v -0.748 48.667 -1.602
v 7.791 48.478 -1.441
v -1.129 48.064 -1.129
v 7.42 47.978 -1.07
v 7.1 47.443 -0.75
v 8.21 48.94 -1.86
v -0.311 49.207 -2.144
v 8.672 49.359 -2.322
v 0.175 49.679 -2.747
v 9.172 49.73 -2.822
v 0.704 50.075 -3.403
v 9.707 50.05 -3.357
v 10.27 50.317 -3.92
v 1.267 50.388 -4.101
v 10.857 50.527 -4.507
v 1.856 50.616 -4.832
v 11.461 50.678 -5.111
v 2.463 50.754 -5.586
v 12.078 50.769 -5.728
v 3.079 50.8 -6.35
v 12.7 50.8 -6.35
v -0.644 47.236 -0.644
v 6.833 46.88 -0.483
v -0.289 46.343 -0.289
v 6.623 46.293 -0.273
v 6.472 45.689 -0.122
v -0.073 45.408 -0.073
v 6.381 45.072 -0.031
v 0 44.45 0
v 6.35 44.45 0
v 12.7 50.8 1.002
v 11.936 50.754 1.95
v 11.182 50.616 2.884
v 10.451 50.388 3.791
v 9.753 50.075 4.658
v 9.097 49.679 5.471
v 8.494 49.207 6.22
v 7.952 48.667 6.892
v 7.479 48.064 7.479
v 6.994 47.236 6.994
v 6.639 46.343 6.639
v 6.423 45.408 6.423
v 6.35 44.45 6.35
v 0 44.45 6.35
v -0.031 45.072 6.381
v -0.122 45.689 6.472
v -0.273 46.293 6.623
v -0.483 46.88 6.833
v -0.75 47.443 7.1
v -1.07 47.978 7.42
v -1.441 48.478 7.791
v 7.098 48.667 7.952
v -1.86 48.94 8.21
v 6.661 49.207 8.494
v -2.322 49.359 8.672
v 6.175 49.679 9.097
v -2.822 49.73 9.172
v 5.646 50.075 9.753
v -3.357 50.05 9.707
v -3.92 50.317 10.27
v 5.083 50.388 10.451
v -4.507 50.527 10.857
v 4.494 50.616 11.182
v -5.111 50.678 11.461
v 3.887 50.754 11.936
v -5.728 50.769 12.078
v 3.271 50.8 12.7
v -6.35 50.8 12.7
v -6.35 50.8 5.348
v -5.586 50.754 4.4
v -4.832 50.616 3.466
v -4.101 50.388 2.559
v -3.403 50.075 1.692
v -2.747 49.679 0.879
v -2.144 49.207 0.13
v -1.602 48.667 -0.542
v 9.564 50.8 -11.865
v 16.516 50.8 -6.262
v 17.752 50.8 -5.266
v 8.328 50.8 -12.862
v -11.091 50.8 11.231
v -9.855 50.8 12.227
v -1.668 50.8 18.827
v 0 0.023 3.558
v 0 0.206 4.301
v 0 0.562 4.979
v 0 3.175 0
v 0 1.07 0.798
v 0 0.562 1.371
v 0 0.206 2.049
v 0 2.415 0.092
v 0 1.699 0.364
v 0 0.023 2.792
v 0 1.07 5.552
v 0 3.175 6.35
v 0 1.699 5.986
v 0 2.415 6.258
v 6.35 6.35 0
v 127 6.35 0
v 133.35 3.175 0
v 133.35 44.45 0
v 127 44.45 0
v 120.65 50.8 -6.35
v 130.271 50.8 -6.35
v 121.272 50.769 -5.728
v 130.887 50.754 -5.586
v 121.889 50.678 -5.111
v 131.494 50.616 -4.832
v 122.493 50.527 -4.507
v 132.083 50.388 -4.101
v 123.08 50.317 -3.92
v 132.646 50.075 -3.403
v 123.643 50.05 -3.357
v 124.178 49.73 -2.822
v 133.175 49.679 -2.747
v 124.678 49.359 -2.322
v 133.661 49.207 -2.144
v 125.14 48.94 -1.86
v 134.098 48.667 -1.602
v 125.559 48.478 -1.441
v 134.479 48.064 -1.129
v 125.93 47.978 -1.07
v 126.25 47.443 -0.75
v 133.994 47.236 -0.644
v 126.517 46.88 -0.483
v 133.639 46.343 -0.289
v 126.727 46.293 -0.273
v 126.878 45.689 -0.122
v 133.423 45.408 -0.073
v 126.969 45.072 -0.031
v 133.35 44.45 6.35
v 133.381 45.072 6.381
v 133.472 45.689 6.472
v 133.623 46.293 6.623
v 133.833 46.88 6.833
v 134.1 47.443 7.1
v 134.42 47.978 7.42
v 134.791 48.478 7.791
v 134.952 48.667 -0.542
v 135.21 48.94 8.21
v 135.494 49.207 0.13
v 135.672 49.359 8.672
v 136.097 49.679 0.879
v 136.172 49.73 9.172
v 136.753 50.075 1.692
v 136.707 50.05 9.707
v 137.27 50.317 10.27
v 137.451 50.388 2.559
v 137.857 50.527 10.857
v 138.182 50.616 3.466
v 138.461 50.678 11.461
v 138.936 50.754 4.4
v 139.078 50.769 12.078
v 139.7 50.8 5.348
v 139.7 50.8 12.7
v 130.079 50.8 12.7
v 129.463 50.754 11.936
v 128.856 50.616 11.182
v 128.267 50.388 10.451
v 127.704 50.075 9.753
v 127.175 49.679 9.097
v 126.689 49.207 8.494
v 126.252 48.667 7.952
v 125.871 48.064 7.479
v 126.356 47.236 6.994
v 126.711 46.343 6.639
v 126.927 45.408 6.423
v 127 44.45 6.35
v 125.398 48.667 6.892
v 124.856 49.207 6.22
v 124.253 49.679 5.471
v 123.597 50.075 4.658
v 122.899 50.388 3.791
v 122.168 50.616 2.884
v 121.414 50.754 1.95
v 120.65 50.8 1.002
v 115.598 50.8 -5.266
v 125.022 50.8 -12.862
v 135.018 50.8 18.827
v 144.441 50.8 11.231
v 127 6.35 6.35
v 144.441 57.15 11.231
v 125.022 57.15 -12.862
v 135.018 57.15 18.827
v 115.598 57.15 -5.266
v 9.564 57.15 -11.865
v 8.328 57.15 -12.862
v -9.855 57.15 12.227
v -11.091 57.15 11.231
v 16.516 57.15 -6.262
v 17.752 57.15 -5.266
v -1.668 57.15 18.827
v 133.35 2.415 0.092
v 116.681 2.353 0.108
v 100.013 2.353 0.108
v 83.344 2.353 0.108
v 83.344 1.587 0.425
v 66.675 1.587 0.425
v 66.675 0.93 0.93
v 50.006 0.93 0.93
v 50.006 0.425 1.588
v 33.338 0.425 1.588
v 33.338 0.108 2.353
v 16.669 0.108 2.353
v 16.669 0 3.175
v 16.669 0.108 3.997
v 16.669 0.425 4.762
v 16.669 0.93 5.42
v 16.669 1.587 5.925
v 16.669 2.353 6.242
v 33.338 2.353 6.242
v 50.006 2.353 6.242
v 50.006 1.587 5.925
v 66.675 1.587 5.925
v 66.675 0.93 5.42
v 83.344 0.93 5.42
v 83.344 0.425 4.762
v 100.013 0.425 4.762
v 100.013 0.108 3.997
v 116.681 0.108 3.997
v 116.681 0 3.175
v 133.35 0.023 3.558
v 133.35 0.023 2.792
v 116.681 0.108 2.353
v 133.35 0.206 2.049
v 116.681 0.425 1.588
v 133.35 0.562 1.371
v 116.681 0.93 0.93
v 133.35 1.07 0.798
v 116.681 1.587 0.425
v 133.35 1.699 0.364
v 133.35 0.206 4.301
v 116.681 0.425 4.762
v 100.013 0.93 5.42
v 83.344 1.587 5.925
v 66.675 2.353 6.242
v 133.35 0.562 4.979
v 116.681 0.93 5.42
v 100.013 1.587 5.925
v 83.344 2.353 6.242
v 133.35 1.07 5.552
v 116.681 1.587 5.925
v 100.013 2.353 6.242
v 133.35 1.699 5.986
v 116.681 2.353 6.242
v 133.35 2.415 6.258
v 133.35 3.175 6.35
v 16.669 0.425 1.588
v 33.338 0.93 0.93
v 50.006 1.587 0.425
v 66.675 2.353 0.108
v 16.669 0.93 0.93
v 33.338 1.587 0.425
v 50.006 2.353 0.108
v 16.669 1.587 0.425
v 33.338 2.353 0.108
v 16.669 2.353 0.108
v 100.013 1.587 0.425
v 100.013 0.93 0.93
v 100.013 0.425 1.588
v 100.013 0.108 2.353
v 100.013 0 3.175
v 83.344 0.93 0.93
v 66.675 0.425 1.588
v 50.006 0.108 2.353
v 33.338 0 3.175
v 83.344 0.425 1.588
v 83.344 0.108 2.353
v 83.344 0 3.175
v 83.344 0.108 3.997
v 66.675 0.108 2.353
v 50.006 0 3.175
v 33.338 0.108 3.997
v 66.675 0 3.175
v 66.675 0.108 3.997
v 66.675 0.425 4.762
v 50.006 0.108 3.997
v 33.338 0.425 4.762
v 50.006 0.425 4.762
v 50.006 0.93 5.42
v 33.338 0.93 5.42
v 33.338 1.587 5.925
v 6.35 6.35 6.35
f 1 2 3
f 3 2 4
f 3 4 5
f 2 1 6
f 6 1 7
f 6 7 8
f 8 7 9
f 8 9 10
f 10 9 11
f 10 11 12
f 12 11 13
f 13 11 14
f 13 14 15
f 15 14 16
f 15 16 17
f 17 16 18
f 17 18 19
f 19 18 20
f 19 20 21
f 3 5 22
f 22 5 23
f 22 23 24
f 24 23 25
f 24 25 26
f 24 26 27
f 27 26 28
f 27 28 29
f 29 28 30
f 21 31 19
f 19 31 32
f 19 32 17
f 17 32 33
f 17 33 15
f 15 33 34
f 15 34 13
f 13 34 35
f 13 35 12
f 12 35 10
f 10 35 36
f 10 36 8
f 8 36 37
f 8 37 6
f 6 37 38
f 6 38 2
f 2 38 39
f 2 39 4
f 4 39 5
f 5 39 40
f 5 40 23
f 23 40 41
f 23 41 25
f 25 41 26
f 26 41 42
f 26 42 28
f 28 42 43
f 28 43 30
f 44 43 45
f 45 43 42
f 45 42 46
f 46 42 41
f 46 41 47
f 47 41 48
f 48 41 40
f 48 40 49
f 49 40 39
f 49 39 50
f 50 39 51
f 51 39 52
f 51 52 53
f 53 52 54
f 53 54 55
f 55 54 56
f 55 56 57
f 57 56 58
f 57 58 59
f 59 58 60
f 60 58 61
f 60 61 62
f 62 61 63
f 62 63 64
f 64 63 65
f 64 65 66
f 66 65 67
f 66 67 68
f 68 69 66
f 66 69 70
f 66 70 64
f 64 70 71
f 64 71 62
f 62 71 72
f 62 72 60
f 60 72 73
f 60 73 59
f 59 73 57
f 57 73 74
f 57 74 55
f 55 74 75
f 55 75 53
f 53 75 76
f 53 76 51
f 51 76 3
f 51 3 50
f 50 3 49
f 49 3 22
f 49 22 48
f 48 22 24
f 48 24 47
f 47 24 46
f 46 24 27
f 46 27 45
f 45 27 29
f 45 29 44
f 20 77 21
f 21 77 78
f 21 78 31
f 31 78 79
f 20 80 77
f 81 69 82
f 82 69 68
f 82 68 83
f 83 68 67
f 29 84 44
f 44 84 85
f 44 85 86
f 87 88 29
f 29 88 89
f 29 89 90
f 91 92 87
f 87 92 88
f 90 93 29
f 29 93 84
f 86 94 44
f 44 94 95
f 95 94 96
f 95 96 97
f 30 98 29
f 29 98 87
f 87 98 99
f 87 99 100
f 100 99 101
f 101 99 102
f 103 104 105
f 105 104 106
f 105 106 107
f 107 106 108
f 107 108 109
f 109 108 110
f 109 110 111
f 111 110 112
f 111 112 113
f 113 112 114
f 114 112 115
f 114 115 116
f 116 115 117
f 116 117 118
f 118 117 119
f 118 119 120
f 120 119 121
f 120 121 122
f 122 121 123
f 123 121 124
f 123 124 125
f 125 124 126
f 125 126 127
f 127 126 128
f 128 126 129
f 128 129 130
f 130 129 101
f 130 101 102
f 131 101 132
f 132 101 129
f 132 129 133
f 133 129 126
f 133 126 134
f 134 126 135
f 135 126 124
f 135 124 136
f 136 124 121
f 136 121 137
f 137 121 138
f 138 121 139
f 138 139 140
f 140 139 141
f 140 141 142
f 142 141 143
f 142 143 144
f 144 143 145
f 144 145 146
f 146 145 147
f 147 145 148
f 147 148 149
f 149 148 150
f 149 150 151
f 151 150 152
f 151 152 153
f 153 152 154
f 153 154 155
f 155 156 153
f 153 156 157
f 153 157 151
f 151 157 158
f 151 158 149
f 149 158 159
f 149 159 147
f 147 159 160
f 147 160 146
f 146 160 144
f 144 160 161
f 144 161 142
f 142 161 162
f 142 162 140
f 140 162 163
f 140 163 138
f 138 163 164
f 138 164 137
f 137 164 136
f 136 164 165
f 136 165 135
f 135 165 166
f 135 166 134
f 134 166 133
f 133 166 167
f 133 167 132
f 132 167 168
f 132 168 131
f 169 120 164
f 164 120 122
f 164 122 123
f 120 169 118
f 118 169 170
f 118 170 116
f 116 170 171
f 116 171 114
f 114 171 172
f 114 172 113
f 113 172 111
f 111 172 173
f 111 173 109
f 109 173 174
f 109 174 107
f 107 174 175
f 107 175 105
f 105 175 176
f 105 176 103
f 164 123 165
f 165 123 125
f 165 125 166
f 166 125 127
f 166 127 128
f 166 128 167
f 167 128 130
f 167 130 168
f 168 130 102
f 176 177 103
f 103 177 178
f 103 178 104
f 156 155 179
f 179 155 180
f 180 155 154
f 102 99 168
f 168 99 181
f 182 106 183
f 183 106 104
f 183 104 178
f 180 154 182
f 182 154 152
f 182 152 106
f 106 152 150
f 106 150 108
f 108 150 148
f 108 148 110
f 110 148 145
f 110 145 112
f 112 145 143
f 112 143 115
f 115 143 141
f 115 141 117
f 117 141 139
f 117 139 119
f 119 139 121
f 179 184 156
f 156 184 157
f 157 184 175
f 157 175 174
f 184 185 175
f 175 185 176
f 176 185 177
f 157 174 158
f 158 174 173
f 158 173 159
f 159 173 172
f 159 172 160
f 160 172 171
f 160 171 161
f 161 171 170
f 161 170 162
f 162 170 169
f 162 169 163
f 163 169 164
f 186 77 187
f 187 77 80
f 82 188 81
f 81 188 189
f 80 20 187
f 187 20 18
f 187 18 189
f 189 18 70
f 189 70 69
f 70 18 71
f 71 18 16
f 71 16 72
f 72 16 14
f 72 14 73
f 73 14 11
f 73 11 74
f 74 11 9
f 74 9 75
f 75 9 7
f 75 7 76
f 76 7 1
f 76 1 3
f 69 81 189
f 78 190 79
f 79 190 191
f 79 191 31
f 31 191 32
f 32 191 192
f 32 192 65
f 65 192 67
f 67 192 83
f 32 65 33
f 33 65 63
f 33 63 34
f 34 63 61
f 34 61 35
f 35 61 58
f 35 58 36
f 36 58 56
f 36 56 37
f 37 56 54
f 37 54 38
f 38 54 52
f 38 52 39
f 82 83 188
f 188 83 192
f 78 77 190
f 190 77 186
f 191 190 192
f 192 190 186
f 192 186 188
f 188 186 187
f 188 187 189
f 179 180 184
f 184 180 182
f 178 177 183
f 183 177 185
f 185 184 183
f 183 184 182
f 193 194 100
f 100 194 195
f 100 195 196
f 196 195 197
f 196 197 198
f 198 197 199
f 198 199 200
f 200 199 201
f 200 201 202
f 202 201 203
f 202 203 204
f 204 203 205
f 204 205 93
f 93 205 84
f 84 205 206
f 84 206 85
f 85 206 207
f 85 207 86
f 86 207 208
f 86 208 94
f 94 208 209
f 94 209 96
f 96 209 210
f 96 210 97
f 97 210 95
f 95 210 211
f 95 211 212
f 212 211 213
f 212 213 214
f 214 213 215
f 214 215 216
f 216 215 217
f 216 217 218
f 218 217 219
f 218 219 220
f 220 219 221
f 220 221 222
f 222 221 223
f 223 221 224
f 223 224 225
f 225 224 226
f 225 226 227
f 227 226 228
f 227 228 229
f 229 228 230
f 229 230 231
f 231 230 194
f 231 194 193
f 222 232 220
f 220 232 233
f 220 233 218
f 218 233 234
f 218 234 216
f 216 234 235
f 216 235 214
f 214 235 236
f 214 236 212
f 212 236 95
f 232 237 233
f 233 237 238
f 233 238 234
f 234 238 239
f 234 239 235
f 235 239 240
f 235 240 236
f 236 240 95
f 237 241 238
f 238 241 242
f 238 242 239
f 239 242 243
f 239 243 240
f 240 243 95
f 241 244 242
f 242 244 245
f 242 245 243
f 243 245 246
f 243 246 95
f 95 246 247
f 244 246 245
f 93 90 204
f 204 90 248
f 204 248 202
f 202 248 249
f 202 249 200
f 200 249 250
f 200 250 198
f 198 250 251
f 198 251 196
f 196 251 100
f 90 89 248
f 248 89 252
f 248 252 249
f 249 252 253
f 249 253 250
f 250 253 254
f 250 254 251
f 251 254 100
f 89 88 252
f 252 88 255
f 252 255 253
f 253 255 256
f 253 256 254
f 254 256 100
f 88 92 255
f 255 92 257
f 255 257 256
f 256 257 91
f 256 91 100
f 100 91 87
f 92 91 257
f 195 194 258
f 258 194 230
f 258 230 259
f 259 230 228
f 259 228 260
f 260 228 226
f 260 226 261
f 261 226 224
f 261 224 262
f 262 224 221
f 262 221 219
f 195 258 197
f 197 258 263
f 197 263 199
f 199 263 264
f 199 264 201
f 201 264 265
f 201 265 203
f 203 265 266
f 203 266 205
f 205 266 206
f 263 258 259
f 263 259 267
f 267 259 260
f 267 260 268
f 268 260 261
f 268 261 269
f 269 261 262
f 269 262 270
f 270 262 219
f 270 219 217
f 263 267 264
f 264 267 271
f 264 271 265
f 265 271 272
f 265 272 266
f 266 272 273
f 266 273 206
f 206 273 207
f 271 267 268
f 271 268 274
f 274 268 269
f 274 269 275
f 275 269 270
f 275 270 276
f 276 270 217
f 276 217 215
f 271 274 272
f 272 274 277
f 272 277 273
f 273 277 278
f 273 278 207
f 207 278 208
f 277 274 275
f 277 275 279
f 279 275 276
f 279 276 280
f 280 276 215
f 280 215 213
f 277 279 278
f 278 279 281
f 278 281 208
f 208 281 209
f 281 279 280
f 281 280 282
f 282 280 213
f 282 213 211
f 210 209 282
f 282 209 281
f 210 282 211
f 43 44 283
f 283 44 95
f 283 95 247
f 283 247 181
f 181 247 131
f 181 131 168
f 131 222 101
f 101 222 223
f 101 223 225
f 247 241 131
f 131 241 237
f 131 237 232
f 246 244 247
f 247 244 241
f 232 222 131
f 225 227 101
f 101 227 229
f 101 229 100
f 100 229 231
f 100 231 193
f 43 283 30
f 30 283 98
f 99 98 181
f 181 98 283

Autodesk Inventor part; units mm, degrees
ref_plane "YZ Plane" through (0, 0, 0) normal (1, 0, 0) x (0, 1, 0)
ref_plane "XZ Plane" through (0, 0, 0) normal (0, 1, 0) x (-1, 0, 0)
ref_plane "XY Plane" through (0, 0, 0) normal (0, 0, 1) x (1, 0, 0)
sketch "Sketch1" plane through (0, 0, 0) normal (0, 0, 1) x (1, 0, 0)
  line L0 (0, 0) -> (133.35, 0)
  line L1 (133.35, 0) -> (133.35, 50.8)
  line L2 (0, 50.8) -> (0, 0)
  line L3 (0, 50.8) -> (6.35, 50.8)
  line L4 (6.35, 50.8) -> (6.35, 6.35)
  line L5 (6.35, 6.35) -> (127, 6.35)
  line L6 (127, 6.35) -> (127, 50.8)
  line L7 (127, 50.8) -> (133.35, 50.8)
  dimension "d1" = 50.8
  dimension "d2" = 6.35
  dimension "d3" = 44.45
  dimension "d4" = 120.65
  dimension "d5" = 133.35
extrude "Extrusion1" add sketch "Sketch1" along normal blind 6.35
fillet "Fillet1" radius 3.175 2 edges at (66.675, 0, 6.35) (66.675, 0, 0)
sketch "Sketch2" plane through (0, 50.8, 0) normal (0, 1, 0) x (1, 0, 0)
  line L0 (6.35, -6.35) -> (16.515747, 6.26204)
  line L1 (-2.903527, -17.830303) -> (6.35, -6.35)
  line L2 (16.515747, 6.26204) -> (9.563953, 11.86543)
  line L3 (9.563953, 11.86543) -> (-9.855321, -12.226913)
  line L4 (-9.855321, -12.226913) -> (-2.903527, -17.830303)
  line L5 (127, 0) -> (127, -6.35)
  line L6 (127, -6.35) -> (143.198942, -6.35) construction
  line L7 (116.834265, 6.26204) -> (123.786067, 11.86543)
  line L8 (123.786067, 11.86543) -> (143.205318, -12.226913)
  line L9 (143.205318, -12.226913) -> (136.253516, -17.830303)
  line L10 (133.35, -6.35) -> (127, -6.35)
  line L11 (116.834265, 6.26204) -> (136.253516, -17.830303)
  point P0 (0, 0)
extrude "Extrusion2" add sketch "Sketch2" along normal blind 6.35
sketch "Sketch6" plane through (16.515747, 50.8, -6.26204) normal (0.7785715, 0, 0.6275559) x (0.6275559, 0, -0.7785715)
  line L0 (-30.944292, 6.35) -> (0, 6.35)
  line L1 (-30.944292, 0) -> (-30.944292, 6.35)
  line L2 (-30.944292, 6.35) -> (-30.944292, 0)
  line L3 (0, 0) -> (0, 6.35)
  line L4 (-30.944292, 0) -> (0, 0)
  line L5 (0, 0) -> (0, 6.35)
  line L6 (0, 6.35) -> (-30.944292, 6.35)
  point P0 (-15.240001, -50.8)
extrude "Extrusion3" add sketch "Sketch6" along normal blind 1.5875
sketch "Sketch7" plane through (-9.855321, 50.8, 12.226913) normal (-0.7785715, 0, -0.6275559) x (-0.6275559, 0, 0.7785715)
  line L0 (-30.944292, 6.35) -> (0, 6.35)
  line L1 (0, 0) -> (-30.944292, 0)
  line L2 (-30.944292, 6.35) -> (-30.944292, 0)
  line L3 (-30.944292, 0) -> (0, 0)
  line L4 (0, 6.35) -> (0, 0)
  line L5 (0, 0) -> (0, 6.35)
  line L6 (0, 6.35) -> (-30.944292, 6.35)
  point P0 (-15.704291, -50.8)
extrude "Extrusion4" add sketch "Sketch7" along normal blind 1.5875
sketch "Sketch8" plane through (136.253516, 50.8, 17.830303) normal (-0.7785718, 0, 0.6275555) x (0.6275555, 0, 0.7785718)
  line L0 (-30.944277, 6.35) -> (0, 6.35)
  line L1 (0, 0) -> (0, 6.35)
  line L2 (-30.944277, 6.35) -> (0, 6.35)
  line L3 (0, 6.35) -> (0, 0)
  line L4 (0, 0) -> (-30.944277, 0)
  line L5 (-30.944277, 0) -> (-30.944277, 6.35)
  line L6 (-30.944277, 0) -> (-30.944277, 6.35)
  point P0 (-99.388813, -50.8)
extrude "Extrusion5" add sketch "Sketch8" along normal blind 1.5875
sketch "Sketch9" plane through (123.786067, 50.8, -11.86543) normal (0.7785718, 0, -0.6275555) x (-0.6275555, 0, -0.7785718)
  line L0 (-30.944277, 6.35) -> (0, 6.35)
  line L1 (-30.944277, 6.35) -> (0, 6.35)
  line L2 (0, 0) -> (-30.944277, 0)
  line L3 (0, 6.35) -> (0, 0)
  line L4 (0, 0) -> (-30.944277, 0)
  line L5 (-30.944277, 0) -> (-30.944277, 6.35)
  point P0 (68.444536, -50.8)
extrude "Extrusion6" add sketch "Sketch9" along normal blind 1.5875
fillet "Fillet4" radius 6.35 8 edges at (133.35, 50.8, 3.175) (130.175, 50.8, 0) (127, 50.8, 3.175) (130.175, 50.8, 6.35) (6.35, 50.8, 3.175) (3.175, 50.8, 6.35) (0, 50.8, 3.175) (3.175, 50.8, 0)
properties part number "landing_3DPrint"
